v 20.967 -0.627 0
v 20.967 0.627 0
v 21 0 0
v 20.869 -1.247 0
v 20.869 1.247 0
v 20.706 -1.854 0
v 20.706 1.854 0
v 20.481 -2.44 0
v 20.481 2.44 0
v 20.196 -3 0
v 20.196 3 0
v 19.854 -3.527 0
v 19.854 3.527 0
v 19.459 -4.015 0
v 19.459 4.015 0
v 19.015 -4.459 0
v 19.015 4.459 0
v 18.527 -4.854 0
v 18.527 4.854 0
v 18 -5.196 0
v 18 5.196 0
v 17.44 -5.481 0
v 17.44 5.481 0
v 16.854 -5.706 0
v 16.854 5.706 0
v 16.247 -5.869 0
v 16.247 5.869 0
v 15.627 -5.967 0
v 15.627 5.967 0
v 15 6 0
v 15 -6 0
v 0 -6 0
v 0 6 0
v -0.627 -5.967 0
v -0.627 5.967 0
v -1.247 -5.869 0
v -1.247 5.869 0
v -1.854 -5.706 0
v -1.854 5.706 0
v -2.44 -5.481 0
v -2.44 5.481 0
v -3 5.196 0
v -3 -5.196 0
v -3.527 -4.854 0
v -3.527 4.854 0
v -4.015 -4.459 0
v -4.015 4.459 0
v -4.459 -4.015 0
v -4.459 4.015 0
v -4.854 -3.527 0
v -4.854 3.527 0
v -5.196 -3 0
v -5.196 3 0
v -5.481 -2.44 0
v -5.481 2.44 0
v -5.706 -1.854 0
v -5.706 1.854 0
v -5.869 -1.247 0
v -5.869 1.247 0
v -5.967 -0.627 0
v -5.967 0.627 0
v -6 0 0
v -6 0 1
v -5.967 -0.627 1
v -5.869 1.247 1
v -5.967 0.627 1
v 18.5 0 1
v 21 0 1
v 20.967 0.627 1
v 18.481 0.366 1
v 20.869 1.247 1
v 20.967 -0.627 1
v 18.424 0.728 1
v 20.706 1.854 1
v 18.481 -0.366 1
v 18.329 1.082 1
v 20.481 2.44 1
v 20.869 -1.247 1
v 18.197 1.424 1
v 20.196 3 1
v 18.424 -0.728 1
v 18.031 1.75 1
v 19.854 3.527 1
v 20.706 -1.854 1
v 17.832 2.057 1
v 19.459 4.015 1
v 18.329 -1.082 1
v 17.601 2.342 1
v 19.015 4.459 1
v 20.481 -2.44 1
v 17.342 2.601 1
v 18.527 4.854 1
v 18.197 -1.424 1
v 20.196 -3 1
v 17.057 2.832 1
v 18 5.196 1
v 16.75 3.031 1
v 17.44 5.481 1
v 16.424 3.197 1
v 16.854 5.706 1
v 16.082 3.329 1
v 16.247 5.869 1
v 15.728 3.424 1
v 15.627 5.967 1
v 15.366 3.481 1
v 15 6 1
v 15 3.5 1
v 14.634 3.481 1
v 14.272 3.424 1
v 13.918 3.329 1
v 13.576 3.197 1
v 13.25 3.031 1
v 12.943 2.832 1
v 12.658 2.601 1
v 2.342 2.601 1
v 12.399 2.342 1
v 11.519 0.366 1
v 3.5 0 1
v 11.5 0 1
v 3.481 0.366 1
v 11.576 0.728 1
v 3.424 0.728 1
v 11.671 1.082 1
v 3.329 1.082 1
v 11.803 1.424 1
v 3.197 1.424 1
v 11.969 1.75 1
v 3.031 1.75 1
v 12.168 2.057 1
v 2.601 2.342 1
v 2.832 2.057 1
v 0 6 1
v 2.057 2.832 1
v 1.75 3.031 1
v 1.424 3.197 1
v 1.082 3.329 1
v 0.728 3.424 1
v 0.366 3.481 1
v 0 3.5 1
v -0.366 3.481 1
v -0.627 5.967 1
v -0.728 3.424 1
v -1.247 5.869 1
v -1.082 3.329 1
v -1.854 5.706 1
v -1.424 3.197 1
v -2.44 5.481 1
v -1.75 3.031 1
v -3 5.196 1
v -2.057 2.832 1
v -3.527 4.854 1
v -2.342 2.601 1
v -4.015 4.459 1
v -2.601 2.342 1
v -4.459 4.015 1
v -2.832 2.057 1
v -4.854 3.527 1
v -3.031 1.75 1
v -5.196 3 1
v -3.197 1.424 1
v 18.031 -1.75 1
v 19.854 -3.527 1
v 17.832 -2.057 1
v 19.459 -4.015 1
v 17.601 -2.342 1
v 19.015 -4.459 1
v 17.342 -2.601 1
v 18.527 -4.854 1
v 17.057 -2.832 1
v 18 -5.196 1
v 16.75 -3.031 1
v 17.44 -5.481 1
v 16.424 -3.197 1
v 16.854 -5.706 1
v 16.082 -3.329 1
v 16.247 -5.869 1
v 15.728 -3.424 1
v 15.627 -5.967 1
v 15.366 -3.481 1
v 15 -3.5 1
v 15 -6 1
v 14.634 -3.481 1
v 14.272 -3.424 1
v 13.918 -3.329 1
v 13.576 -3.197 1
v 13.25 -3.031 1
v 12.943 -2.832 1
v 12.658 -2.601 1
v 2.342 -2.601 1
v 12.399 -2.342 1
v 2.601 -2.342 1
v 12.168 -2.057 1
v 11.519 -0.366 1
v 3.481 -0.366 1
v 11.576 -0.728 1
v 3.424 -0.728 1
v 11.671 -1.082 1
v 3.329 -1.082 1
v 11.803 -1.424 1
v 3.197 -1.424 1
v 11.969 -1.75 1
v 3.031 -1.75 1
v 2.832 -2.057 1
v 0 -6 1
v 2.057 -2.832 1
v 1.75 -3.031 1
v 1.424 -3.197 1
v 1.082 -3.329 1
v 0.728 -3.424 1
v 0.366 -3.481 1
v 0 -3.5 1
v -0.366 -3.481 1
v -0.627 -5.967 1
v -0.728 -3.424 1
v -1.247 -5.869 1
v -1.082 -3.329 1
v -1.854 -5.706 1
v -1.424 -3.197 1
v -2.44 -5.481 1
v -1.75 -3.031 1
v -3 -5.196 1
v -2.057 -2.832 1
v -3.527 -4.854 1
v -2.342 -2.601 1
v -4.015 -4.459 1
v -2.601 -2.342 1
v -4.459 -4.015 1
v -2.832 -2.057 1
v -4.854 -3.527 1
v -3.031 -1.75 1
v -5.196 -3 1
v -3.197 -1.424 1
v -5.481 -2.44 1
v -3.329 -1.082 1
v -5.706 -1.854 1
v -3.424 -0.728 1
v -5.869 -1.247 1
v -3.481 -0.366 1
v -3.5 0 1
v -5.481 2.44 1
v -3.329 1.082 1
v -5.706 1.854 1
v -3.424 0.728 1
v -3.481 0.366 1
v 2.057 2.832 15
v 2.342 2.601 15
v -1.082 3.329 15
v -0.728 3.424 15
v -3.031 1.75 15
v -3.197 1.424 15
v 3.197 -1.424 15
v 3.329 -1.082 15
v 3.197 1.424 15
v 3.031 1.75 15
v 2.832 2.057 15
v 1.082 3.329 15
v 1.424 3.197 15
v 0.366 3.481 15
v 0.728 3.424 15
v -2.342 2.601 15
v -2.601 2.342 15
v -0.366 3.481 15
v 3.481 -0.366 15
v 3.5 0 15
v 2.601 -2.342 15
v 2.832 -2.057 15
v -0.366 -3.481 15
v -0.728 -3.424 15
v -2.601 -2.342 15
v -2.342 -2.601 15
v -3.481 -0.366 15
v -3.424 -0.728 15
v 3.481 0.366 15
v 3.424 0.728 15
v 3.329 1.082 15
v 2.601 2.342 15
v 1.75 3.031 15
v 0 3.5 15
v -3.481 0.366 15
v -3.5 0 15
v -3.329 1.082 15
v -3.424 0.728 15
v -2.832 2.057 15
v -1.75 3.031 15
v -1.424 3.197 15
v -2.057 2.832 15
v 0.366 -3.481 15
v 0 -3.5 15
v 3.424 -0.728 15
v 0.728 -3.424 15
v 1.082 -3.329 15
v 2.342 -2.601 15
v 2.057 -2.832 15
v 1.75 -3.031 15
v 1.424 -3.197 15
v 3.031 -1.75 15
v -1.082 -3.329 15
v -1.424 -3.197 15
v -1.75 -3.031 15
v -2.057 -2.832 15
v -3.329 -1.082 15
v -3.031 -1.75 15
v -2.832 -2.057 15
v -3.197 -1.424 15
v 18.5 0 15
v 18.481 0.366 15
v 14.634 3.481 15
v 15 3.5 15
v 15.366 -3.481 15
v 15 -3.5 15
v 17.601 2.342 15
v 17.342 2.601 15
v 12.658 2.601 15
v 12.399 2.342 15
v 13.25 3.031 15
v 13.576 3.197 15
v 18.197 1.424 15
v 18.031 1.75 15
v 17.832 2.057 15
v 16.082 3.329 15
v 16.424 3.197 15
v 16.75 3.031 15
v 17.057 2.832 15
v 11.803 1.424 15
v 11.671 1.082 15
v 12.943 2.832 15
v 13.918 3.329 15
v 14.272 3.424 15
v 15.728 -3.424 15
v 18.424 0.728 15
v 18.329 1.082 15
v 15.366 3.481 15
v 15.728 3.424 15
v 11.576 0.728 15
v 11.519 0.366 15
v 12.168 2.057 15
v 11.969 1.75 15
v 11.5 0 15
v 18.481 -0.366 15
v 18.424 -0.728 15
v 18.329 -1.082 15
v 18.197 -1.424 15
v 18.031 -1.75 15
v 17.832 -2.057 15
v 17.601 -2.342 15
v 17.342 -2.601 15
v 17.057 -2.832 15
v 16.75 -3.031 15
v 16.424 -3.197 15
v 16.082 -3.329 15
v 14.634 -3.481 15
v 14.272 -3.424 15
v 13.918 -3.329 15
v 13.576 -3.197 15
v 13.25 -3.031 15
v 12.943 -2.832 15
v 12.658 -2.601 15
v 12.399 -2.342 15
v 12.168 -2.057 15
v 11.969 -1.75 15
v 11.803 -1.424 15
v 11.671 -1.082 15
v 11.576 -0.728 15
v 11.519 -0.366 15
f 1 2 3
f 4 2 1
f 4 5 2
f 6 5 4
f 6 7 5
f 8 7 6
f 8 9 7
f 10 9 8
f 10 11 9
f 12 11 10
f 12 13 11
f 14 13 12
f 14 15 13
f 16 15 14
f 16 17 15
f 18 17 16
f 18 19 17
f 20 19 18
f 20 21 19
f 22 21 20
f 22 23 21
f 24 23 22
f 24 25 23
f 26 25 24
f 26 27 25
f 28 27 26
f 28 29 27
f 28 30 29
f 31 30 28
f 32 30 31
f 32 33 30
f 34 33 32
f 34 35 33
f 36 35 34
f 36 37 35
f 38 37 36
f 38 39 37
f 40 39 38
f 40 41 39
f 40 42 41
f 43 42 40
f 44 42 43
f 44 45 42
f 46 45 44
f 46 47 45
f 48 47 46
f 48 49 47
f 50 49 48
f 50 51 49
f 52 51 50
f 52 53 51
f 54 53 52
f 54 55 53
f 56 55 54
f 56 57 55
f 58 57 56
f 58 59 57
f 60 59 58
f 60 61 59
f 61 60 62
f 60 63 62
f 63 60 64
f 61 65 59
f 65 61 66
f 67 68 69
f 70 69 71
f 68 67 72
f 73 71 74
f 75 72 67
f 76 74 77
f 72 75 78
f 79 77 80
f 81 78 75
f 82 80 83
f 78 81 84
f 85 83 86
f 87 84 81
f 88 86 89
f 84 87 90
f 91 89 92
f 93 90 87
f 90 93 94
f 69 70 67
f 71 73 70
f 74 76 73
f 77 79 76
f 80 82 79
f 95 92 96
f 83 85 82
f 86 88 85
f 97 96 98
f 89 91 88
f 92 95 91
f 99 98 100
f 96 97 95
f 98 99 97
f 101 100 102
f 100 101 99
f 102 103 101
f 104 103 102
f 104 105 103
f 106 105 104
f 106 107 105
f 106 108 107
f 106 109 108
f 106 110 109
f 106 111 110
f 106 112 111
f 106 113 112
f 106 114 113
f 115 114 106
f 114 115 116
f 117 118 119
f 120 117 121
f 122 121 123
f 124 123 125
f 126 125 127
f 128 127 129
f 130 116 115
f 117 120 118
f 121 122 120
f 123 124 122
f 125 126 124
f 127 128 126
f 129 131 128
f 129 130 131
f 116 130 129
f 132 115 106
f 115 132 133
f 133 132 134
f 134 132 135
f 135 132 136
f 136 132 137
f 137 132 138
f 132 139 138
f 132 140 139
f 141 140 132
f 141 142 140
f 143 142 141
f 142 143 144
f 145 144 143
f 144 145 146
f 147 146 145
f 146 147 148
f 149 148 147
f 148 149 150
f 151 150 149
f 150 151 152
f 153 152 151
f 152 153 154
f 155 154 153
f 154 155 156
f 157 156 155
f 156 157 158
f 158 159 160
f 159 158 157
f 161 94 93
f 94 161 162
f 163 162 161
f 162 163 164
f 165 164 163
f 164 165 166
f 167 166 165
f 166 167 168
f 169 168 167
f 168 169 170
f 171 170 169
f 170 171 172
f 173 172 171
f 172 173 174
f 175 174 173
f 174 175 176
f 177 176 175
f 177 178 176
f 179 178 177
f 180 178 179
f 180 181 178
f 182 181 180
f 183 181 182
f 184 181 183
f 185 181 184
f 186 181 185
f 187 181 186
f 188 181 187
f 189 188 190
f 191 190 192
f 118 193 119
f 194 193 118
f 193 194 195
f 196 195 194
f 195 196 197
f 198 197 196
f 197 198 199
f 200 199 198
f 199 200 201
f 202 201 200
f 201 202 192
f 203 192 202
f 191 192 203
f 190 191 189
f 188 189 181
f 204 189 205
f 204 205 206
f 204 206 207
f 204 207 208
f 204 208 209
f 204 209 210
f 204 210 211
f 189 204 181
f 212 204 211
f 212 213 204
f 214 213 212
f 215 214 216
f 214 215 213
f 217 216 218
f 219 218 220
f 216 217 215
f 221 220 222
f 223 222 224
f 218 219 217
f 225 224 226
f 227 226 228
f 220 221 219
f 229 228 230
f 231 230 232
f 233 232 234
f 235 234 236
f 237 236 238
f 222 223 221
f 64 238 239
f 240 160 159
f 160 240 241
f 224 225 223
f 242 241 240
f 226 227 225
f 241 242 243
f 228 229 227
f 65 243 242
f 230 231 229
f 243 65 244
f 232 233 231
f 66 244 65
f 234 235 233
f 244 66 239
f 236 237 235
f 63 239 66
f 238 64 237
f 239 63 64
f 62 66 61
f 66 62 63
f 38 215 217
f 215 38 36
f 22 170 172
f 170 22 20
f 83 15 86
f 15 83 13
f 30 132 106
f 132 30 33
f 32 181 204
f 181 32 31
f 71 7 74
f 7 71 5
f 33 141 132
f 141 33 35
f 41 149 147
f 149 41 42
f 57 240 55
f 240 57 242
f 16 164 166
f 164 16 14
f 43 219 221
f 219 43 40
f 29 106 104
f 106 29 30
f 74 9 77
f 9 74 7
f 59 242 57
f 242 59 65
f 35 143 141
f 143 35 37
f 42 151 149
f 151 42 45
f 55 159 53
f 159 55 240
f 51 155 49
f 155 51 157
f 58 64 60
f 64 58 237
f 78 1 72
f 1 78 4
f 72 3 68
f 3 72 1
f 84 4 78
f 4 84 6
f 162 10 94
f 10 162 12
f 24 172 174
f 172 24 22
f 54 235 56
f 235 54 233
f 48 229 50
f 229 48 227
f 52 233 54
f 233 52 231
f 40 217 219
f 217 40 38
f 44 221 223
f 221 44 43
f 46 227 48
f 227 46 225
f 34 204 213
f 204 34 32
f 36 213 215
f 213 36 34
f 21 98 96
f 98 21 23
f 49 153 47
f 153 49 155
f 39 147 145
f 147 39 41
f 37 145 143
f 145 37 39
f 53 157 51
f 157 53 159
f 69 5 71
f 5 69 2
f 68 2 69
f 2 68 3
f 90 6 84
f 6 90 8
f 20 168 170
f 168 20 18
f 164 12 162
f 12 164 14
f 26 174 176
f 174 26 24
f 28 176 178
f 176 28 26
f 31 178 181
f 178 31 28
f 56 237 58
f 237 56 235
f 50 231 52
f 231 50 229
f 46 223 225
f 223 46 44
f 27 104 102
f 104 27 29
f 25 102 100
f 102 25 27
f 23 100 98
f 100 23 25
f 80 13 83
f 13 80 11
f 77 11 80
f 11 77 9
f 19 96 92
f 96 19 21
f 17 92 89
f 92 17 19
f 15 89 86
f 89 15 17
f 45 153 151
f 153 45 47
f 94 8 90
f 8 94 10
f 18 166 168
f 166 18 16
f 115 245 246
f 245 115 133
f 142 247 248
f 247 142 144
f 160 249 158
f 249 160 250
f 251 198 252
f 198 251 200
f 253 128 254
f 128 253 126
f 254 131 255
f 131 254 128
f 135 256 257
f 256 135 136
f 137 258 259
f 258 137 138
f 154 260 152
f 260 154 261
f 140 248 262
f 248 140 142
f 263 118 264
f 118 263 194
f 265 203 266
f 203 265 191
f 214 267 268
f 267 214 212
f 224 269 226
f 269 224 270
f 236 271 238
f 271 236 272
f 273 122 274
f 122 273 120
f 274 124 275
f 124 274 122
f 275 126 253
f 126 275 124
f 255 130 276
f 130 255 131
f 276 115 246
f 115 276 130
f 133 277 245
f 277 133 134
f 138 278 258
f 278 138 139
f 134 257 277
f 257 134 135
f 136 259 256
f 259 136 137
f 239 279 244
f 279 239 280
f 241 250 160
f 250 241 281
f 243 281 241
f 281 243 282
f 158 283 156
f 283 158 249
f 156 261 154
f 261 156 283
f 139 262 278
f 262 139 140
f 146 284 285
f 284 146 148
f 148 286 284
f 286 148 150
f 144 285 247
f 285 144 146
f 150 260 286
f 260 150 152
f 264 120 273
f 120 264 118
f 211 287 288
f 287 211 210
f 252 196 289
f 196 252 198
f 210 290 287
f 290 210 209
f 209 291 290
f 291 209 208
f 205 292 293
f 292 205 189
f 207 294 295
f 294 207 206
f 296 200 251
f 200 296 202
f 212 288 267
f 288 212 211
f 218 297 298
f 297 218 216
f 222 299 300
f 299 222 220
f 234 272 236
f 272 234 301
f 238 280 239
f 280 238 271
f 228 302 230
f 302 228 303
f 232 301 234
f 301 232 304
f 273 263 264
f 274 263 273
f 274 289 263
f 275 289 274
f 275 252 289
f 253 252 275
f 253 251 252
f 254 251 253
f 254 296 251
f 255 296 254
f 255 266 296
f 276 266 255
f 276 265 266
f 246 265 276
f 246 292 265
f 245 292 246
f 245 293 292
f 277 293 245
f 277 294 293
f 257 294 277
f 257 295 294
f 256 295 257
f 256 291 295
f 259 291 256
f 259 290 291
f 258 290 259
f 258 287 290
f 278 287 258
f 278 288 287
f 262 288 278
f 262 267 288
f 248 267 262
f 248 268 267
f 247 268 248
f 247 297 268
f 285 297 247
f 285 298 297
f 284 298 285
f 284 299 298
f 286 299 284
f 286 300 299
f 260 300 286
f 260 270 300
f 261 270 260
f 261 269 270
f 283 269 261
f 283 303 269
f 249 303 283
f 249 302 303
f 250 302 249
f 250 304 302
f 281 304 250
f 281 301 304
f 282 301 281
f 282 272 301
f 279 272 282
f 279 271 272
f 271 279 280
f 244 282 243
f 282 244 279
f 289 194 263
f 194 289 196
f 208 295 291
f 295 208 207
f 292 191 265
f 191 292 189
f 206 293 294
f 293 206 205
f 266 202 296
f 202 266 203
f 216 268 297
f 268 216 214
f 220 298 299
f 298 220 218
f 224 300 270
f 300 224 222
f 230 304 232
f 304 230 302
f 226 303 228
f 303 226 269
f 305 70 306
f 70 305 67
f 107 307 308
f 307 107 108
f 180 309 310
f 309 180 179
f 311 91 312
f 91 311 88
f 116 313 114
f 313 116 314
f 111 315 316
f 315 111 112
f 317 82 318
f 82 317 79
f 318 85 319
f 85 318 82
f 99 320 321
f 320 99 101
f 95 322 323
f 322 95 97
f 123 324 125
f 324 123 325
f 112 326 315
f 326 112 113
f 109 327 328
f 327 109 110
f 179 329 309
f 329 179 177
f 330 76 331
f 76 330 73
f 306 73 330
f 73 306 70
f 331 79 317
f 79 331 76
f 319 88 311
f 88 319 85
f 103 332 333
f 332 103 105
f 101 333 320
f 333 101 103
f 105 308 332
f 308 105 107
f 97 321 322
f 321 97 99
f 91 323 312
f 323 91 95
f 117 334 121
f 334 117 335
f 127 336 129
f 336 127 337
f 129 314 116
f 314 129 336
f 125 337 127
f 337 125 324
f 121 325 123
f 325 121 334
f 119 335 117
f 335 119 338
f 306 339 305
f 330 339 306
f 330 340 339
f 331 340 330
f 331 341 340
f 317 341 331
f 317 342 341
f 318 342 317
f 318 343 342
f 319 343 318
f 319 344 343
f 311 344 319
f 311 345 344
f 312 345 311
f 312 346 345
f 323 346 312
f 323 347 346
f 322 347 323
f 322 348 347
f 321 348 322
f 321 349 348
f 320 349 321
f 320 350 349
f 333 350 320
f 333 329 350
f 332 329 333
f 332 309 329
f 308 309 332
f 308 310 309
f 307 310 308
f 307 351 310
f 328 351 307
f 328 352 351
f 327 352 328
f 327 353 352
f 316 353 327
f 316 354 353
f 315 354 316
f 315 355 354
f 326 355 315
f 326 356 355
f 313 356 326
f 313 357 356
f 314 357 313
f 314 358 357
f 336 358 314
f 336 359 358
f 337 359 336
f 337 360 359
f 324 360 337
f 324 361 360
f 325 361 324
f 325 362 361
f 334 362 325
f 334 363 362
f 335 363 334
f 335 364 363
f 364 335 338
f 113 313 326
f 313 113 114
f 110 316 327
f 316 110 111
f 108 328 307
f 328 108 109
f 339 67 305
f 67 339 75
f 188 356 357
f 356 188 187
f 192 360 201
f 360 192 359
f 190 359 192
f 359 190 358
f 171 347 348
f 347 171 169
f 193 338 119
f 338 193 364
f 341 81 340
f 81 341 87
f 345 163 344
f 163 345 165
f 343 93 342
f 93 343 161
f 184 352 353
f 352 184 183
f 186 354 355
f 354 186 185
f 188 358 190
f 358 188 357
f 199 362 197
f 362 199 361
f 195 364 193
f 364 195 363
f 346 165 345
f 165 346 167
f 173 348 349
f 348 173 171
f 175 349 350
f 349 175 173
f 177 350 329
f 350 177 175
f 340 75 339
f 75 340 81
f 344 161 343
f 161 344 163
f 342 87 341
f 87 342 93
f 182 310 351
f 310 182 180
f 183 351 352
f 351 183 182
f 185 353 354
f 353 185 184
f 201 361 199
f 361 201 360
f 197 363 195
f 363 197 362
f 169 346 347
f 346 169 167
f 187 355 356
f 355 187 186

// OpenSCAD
$fn=60;

hull() {
   cylinder(d=12,h=1);
   translate([15,0,0]) cylinder(d=12,h=1);
}

cylinder(d=7,h=15);
translate([15,0,0]) cylinder(d=7,h=15);
